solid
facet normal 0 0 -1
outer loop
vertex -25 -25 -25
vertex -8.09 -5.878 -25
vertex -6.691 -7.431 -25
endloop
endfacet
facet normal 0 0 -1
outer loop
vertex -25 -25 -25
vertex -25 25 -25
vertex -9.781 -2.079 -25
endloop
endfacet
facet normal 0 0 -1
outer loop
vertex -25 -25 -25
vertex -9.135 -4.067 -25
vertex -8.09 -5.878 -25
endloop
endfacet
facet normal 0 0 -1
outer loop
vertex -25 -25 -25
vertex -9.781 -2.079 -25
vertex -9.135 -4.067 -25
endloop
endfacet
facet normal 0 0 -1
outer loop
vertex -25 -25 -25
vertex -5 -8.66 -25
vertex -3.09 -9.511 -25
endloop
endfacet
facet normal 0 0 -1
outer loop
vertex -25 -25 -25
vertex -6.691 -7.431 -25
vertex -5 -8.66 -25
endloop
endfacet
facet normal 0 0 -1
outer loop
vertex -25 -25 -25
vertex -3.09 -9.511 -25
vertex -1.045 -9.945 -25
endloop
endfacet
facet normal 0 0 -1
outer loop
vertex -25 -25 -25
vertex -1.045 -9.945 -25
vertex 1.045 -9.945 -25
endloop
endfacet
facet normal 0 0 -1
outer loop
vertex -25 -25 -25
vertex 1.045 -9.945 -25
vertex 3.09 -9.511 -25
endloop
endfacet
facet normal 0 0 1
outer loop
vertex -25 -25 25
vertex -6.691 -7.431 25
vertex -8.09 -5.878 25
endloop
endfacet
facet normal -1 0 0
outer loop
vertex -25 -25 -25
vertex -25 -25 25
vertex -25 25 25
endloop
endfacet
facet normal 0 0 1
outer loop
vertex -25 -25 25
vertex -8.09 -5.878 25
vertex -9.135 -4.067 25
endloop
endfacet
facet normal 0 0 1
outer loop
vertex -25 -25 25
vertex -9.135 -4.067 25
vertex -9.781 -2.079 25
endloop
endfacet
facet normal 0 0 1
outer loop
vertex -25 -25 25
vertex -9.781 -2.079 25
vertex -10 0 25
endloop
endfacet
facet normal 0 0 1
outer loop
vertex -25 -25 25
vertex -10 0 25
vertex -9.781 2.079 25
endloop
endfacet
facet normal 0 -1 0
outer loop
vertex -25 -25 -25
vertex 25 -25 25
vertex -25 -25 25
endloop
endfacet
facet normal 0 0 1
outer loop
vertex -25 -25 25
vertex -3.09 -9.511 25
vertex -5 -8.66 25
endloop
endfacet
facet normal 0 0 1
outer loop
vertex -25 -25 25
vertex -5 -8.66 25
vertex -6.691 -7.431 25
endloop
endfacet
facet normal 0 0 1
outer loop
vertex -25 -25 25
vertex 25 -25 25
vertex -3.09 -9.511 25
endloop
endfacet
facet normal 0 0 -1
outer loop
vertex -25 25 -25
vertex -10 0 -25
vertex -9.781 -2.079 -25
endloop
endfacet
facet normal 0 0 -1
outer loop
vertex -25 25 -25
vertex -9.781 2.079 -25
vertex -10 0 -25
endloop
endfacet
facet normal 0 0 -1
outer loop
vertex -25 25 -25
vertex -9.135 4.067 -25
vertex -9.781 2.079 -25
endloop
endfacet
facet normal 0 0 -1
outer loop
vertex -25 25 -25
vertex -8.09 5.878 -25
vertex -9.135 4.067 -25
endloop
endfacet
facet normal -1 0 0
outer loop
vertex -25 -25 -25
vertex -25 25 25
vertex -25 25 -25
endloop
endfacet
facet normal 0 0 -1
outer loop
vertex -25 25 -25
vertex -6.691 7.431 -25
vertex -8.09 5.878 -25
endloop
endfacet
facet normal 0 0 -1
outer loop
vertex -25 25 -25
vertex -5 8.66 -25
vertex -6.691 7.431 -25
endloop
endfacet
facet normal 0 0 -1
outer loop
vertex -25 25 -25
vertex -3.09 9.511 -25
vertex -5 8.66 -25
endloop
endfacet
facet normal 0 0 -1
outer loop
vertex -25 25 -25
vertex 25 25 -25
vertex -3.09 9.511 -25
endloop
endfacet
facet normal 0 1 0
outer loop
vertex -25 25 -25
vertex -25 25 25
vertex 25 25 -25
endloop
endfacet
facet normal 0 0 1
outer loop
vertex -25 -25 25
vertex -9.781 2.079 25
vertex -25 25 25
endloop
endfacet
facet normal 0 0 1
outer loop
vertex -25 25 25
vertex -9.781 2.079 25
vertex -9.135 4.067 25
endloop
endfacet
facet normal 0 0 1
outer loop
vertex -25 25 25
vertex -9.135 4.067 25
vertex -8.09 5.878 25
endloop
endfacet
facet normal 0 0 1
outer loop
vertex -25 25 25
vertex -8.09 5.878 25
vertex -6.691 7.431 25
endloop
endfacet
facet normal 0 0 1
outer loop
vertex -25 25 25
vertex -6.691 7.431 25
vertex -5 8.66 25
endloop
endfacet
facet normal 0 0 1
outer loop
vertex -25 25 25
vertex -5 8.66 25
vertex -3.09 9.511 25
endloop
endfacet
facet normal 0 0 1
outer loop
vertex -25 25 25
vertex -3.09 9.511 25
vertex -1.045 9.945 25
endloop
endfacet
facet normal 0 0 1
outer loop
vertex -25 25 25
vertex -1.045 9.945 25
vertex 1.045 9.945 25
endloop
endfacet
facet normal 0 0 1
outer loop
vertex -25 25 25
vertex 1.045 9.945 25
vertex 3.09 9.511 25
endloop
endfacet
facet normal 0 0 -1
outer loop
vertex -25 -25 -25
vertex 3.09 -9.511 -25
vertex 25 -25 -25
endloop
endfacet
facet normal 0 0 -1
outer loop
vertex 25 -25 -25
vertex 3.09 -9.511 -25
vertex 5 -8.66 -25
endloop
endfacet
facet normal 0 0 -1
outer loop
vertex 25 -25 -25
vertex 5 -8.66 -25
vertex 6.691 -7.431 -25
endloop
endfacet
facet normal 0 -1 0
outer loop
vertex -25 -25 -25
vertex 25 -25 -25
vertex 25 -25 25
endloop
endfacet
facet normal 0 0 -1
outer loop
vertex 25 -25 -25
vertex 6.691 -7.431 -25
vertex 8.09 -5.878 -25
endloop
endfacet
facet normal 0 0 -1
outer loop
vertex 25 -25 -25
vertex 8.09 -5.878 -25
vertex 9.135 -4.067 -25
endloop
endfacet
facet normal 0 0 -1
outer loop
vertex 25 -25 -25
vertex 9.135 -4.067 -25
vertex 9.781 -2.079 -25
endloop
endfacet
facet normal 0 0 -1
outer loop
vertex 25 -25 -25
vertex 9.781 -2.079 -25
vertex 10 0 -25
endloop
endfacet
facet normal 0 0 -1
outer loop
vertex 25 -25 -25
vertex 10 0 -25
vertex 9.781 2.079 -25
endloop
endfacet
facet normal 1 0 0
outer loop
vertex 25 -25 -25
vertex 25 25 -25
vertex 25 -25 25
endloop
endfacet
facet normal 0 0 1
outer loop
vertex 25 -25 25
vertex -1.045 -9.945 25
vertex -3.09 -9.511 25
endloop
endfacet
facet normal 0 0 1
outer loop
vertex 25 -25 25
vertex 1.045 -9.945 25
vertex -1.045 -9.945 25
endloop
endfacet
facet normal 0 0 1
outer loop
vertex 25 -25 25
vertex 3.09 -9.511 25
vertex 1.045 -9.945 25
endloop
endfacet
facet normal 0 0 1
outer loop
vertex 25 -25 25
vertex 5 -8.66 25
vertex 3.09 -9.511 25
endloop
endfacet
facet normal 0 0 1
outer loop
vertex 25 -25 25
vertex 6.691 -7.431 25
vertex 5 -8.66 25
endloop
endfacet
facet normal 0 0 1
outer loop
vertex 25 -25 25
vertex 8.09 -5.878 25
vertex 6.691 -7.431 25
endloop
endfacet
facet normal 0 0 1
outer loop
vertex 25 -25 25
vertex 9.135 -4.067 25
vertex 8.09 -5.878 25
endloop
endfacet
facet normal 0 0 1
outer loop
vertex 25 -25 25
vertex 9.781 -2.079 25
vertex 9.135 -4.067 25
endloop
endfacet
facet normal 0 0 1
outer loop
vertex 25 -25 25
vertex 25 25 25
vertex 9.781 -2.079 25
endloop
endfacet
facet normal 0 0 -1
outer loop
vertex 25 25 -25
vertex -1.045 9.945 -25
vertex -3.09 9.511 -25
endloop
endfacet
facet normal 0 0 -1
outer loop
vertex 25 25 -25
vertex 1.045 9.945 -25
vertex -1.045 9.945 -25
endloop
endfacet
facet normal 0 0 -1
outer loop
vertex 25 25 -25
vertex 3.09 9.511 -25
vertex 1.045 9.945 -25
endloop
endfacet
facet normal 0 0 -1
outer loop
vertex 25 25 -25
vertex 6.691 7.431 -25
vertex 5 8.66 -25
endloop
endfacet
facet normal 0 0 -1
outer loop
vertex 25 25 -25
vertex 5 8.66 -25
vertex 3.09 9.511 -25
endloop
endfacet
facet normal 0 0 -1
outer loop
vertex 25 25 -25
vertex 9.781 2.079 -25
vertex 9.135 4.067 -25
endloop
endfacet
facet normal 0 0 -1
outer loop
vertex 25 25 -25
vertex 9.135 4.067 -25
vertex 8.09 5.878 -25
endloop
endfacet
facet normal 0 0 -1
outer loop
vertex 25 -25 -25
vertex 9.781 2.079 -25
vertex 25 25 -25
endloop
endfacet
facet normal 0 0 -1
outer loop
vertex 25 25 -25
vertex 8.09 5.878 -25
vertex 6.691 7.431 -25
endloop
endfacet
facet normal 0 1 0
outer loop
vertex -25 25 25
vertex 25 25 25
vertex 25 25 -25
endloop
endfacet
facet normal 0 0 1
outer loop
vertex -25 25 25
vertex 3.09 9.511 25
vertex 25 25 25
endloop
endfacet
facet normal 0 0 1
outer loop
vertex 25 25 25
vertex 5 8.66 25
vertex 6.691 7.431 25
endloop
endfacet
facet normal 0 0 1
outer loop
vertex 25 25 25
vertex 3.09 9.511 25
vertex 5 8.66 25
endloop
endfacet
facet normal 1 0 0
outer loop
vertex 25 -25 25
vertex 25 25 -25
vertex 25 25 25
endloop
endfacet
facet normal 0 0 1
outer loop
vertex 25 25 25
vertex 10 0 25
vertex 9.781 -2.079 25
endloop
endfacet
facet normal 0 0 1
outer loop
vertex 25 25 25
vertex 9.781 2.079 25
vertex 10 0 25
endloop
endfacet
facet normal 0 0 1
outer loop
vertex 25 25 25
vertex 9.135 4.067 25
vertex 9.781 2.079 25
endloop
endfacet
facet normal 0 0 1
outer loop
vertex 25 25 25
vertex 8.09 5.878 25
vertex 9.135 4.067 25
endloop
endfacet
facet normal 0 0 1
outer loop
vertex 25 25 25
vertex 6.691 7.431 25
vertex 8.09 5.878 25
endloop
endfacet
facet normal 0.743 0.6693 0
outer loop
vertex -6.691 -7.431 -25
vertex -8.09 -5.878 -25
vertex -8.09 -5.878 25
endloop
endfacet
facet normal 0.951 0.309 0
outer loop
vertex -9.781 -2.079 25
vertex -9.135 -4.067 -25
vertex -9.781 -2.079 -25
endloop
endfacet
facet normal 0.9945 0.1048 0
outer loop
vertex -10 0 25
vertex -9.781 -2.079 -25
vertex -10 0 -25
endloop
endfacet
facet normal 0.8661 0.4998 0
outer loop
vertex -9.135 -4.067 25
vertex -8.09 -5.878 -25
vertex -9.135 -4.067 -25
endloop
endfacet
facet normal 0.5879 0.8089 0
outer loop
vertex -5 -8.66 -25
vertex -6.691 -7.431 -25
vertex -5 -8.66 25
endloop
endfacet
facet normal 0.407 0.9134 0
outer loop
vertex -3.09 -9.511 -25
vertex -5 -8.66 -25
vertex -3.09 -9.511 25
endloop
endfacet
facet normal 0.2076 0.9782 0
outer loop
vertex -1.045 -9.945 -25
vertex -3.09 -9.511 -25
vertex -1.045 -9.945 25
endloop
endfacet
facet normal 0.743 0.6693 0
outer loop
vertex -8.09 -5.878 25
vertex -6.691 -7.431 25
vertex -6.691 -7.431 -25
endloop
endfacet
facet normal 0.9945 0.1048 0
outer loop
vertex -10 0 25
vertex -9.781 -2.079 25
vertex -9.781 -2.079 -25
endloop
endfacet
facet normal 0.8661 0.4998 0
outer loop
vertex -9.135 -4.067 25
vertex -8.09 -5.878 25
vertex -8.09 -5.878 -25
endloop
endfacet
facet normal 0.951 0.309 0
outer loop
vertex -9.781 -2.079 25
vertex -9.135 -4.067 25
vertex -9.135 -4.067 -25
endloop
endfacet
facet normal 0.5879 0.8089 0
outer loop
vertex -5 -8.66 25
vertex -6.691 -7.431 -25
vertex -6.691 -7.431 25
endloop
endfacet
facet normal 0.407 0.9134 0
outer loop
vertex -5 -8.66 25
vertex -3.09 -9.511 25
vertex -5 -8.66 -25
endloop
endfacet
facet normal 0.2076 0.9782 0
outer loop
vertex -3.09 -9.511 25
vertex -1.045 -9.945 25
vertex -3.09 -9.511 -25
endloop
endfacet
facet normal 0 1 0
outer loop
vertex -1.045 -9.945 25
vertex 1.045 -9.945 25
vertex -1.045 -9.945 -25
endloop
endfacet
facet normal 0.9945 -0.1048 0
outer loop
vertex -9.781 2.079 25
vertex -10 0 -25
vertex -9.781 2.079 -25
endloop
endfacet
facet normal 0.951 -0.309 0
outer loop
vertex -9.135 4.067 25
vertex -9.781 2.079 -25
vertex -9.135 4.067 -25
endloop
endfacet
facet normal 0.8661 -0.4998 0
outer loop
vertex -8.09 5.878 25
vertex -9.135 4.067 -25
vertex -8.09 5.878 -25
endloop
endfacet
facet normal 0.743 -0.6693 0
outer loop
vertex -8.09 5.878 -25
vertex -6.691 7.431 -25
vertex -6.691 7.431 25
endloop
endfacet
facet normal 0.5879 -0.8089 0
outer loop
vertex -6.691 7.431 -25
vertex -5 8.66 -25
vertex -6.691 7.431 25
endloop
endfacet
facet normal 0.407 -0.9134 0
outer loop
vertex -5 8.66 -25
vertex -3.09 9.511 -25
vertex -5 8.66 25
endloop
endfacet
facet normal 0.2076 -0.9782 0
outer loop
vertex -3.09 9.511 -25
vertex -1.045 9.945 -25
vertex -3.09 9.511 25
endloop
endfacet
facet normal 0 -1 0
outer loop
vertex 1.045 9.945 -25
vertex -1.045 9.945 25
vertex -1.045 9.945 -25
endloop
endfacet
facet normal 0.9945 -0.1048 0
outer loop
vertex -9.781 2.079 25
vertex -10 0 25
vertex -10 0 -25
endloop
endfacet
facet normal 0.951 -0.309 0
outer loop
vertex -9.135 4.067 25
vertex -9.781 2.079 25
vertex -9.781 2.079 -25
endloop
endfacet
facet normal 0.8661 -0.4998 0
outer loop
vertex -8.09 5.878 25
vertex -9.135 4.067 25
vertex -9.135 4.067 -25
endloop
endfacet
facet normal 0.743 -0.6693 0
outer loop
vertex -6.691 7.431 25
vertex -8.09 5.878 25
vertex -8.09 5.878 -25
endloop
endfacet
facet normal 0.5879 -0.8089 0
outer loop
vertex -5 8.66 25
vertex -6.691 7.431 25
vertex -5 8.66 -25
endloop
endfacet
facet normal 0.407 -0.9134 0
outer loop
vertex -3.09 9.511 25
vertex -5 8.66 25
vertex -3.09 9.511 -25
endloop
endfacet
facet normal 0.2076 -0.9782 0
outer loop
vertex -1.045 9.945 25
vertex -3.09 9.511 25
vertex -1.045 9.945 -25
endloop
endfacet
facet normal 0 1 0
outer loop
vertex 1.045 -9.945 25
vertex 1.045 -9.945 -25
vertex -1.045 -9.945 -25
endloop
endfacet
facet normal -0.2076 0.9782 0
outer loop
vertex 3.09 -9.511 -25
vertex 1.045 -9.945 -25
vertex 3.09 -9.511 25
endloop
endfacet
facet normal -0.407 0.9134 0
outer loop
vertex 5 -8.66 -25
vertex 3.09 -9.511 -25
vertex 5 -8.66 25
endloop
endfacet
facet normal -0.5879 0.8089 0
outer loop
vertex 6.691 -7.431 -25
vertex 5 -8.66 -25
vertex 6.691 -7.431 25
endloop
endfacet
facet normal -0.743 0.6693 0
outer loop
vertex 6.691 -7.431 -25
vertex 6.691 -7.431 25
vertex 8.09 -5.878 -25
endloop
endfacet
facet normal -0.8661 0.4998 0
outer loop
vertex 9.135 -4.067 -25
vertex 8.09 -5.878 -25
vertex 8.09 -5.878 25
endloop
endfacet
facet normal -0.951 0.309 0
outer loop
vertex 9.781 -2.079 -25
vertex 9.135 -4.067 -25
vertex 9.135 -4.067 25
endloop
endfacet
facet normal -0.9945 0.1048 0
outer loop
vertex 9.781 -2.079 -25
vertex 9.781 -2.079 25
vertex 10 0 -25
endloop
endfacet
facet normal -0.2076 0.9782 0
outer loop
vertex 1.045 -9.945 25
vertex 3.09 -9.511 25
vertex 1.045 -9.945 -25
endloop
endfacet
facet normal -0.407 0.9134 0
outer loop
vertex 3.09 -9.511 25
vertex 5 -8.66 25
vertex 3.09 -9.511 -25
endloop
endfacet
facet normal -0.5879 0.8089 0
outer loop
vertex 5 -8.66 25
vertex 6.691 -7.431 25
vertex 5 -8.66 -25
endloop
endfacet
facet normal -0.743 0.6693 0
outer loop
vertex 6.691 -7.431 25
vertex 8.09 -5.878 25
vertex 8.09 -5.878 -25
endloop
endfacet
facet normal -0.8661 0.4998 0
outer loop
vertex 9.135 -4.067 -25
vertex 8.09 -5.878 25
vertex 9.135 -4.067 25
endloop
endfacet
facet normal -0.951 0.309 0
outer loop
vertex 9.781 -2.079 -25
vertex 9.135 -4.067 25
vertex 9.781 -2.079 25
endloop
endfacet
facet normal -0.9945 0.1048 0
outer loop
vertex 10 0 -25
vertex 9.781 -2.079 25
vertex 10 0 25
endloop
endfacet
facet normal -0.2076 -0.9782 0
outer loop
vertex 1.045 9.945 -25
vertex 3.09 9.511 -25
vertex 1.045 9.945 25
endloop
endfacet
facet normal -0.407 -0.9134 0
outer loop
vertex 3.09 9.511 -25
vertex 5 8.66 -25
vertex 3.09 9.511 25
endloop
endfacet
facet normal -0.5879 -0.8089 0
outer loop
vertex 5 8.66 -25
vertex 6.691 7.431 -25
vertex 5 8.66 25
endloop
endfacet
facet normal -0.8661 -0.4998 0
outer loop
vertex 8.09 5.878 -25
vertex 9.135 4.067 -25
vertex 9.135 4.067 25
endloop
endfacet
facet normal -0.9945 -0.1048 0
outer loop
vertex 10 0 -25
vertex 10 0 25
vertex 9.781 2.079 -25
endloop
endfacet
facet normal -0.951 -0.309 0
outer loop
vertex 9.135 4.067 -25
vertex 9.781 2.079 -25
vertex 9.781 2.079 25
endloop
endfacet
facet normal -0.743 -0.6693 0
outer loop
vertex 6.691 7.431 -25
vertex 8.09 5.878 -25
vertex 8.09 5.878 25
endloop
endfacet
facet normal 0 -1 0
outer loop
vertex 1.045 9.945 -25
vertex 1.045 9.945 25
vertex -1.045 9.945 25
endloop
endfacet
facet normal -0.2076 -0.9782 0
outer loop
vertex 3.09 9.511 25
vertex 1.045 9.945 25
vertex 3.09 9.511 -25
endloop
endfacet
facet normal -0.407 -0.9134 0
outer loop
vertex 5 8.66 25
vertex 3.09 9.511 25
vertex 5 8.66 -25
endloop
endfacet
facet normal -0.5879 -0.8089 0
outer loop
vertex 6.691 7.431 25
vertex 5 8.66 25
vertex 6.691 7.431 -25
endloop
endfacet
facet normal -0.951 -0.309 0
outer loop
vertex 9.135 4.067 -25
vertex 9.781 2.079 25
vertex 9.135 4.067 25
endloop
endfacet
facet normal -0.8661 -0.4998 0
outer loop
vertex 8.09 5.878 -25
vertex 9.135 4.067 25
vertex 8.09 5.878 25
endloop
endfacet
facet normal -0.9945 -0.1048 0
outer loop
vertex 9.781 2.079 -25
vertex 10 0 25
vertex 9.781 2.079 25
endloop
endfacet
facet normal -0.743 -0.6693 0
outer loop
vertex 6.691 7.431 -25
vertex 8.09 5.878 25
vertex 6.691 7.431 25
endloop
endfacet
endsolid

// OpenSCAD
difference() {
  cube([50, 50, 50], center=true);
  cylinder(h=60, r=10, center=true);
}
